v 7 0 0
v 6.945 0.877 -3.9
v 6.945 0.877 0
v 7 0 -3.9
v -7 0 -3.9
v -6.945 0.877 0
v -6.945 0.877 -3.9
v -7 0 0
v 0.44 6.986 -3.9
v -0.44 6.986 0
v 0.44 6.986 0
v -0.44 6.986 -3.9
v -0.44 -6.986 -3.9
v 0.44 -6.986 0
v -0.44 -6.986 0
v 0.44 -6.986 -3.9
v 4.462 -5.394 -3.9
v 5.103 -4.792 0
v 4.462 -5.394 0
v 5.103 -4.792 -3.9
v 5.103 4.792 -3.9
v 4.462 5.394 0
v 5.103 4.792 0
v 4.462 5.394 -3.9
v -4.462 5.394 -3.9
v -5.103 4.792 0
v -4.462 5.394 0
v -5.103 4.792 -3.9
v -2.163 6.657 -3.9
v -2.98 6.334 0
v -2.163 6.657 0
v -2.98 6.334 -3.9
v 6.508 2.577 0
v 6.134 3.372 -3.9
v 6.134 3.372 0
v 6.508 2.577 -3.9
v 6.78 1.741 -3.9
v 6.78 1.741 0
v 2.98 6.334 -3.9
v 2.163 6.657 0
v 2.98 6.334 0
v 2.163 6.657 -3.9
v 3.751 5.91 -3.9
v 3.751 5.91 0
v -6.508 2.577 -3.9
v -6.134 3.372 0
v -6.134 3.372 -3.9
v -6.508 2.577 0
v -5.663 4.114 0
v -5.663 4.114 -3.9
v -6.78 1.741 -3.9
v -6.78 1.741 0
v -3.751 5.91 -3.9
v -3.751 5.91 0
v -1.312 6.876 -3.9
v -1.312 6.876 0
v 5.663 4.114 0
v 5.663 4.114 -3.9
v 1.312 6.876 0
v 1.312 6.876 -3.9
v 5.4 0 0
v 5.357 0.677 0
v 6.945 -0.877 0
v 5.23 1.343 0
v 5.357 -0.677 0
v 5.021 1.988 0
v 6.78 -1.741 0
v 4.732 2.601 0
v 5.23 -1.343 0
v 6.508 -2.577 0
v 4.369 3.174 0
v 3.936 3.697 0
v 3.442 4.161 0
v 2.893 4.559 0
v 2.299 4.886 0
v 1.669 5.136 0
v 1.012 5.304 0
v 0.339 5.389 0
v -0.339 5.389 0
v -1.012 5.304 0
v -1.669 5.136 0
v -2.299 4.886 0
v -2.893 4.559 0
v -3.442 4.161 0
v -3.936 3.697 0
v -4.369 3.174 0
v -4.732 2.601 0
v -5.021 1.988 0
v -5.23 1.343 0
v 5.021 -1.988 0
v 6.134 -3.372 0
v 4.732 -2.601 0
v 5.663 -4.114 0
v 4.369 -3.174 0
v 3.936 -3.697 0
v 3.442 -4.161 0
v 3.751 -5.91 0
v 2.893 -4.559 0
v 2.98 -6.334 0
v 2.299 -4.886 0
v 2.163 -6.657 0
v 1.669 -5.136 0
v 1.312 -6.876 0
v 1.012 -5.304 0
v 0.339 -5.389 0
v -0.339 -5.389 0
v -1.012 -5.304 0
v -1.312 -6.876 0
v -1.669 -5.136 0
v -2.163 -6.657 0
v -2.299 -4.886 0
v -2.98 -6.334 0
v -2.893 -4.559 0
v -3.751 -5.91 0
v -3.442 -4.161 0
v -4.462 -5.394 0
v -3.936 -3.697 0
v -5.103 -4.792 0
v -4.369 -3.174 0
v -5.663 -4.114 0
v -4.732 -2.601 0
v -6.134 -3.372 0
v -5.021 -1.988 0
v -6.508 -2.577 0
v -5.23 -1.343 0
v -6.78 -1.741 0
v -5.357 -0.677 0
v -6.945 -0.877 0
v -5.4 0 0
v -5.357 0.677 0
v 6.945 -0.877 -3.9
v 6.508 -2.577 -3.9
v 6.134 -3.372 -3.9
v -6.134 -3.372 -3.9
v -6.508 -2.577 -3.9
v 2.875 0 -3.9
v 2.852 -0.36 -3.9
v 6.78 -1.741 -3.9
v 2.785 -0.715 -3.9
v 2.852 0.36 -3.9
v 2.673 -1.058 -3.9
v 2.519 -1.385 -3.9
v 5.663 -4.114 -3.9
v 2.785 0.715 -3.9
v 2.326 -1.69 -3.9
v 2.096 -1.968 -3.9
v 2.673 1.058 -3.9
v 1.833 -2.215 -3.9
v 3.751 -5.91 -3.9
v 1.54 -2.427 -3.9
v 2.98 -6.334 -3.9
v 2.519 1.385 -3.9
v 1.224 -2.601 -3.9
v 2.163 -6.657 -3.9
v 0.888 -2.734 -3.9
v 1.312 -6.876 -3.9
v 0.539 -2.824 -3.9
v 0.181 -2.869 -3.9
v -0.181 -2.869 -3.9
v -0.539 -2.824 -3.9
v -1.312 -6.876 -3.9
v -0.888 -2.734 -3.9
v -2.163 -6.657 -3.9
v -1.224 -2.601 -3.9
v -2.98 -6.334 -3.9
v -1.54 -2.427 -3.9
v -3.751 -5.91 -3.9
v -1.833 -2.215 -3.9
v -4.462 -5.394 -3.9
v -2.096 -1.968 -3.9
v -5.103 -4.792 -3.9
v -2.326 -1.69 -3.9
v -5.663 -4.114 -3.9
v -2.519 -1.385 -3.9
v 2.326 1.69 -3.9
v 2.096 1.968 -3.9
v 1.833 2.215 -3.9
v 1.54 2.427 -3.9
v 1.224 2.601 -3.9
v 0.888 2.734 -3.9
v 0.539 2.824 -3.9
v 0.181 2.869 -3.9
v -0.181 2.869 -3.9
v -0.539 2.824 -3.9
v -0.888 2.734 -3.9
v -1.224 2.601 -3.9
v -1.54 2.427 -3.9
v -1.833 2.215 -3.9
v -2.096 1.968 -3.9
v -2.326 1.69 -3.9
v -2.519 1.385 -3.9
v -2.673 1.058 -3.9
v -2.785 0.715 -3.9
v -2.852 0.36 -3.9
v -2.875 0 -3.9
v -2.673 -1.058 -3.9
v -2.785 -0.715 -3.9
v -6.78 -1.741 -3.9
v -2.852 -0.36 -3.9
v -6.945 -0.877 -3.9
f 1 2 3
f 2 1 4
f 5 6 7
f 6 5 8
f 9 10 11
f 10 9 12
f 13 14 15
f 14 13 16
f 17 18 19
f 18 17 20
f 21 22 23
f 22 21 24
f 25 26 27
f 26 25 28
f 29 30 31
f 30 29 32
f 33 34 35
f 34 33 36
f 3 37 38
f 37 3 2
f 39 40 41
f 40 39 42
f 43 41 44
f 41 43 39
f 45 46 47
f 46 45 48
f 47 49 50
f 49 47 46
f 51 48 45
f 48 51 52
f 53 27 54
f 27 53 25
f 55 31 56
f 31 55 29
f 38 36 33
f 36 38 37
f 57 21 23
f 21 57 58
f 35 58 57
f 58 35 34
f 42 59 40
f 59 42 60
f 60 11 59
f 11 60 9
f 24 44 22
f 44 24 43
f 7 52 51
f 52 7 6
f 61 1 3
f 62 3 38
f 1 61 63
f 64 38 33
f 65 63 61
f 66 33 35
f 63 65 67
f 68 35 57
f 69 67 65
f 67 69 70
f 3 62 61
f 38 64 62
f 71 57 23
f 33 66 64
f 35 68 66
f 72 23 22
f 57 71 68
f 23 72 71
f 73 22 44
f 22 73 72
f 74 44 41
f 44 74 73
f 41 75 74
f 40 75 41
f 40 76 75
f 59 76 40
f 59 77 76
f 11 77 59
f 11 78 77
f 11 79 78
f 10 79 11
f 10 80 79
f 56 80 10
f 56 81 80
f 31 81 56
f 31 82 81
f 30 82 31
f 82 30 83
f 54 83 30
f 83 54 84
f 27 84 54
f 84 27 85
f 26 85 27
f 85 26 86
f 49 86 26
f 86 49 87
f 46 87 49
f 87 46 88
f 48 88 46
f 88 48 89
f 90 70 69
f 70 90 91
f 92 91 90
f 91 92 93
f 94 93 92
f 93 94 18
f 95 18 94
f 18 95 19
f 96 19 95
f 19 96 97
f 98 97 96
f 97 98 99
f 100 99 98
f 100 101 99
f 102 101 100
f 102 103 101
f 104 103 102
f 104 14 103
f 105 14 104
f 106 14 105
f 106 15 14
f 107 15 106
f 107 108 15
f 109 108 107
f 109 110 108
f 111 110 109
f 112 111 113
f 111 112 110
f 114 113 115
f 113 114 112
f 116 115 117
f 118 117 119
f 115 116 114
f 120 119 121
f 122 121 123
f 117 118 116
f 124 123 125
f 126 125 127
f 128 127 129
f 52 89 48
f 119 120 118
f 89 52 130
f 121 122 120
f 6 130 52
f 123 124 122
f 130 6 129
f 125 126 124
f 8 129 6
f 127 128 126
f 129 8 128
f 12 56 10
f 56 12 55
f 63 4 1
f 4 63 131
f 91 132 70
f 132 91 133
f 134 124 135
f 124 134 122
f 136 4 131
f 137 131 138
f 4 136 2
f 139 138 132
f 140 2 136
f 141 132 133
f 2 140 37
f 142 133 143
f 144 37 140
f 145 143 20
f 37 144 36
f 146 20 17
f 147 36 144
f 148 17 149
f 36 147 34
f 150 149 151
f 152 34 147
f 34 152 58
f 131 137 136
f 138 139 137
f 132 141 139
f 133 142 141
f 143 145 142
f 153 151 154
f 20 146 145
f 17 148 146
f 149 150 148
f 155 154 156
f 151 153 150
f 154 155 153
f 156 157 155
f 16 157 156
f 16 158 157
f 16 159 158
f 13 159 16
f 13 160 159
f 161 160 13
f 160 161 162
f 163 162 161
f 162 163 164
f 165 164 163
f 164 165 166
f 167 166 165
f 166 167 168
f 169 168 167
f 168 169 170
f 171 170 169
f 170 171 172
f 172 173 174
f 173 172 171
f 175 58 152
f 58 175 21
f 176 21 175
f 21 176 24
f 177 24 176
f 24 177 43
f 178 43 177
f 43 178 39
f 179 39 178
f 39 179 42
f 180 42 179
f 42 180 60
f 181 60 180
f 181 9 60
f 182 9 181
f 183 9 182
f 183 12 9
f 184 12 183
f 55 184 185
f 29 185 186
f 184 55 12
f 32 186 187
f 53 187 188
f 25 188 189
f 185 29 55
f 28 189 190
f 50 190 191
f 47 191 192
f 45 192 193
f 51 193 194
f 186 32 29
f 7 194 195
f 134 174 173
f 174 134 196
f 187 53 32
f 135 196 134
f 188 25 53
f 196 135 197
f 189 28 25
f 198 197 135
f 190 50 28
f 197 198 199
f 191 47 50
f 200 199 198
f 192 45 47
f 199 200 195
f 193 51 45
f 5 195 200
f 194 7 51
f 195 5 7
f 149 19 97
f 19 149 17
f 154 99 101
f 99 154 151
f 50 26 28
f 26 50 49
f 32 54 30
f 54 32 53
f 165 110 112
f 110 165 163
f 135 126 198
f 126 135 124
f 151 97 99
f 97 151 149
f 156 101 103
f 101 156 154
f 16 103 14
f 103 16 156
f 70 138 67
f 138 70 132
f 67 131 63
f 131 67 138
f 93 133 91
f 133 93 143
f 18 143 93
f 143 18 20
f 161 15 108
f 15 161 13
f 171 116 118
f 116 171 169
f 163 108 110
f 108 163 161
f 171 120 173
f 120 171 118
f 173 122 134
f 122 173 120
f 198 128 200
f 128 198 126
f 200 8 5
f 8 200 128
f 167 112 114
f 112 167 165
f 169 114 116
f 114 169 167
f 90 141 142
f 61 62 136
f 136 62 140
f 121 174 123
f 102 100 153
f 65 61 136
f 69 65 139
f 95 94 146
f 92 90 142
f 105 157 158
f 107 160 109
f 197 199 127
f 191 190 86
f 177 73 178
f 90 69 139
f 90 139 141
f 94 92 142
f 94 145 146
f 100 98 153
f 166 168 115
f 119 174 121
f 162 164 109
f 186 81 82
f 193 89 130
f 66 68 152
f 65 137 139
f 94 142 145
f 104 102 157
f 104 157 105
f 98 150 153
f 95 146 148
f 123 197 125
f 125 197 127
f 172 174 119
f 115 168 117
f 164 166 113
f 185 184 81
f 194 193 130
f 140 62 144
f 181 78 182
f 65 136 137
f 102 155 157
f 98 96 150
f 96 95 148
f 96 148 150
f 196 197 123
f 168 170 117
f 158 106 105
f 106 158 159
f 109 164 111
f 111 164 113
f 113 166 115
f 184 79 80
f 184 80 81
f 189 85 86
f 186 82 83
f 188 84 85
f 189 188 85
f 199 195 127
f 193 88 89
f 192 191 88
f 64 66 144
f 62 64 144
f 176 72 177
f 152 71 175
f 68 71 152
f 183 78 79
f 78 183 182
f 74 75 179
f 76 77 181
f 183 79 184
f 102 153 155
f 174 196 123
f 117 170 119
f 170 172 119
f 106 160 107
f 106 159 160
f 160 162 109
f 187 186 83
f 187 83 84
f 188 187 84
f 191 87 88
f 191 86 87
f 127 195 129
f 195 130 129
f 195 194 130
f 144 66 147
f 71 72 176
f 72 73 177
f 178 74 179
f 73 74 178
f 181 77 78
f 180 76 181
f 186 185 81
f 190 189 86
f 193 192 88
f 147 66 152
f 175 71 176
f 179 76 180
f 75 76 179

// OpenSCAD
$fn = 50;


difference() {
	union() {
		translate(v = [0, 0, -3.9000000000]) {
			cylinder(h = 3.9000000000, r = 7.0000000000);
		}
		translate(v = [0, 0, -3.9000000000]) {
			cylinder(h = 3.9000000000, r = 2.8750000000);
		}
	}
	union() {
		translate(v = [0, 0, 0]) {
			rotate(a = [0, 0, 0]) {
				difference() {
					union() {
						#translate(v = [0, 0, -3.9000000000]) {
							cylinder(h = 3.9000000000, r = 2.6000000000);
						}
						#translate(v = [0, 0, -3.9000000000]) {
							cylinder(h = 3.9000000000, r1 = 2.8750000000, r2 = 5.4000000000);
						}
						#translate(v = [0, 0, -3.9000000000]) {
							cylinder(h = 3.9000000000, r = 2.8750000000);
						}
						#translate(v = [0, 0, -3.9000000000]) {
							cylinder(h = 3.9000000000, r = 2.6000000000);
						}
					}
					union();
				}
			}
		}
	}
}
